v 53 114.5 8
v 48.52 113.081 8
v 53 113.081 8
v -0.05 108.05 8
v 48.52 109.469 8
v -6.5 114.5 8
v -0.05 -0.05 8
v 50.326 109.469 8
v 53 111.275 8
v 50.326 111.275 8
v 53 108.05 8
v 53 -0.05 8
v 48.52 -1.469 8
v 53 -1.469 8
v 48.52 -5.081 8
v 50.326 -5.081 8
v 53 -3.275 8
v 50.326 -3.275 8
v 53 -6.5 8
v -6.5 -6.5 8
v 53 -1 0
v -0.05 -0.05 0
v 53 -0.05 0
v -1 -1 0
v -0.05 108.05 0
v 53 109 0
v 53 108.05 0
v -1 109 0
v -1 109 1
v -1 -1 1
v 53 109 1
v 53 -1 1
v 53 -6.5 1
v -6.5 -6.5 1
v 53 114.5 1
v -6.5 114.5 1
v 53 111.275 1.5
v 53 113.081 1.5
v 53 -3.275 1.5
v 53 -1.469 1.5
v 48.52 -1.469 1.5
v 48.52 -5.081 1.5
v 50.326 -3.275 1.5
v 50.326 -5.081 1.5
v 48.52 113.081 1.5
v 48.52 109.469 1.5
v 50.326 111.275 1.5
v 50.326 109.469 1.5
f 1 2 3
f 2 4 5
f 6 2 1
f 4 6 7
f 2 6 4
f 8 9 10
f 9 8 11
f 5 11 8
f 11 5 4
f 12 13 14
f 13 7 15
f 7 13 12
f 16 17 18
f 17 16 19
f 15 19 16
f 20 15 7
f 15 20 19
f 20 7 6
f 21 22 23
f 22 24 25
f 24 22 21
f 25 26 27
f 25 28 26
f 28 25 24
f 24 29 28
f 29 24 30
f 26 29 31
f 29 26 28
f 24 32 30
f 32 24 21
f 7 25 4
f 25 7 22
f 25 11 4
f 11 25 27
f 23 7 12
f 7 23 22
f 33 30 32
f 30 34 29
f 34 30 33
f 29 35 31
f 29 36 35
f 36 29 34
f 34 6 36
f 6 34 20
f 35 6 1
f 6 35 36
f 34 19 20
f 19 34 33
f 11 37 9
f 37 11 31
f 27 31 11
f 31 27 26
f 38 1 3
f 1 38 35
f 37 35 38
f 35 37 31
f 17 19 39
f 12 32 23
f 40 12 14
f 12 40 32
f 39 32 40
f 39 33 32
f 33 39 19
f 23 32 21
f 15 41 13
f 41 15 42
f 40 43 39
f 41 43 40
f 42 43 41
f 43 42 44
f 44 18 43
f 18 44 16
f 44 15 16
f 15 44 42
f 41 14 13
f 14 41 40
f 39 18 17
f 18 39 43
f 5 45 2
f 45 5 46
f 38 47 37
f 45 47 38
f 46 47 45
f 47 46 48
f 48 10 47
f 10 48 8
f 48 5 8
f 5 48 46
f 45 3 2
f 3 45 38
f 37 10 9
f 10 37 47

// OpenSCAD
// Generated by SolidPython 1.0.4 on 2021-01-19 17:41:34


difference() {
	difference() {
		difference() {
			union() {
				difference() {
					translate(v = [-1.0000000000, -1.0000000000, 0]) {
						cube(size = [74.0000000000, 110.0000000000, 8]);
					}
					translate(v = [-0.0500000000, -0.0500000000, 0]) {
						cube(size = [72.1000000000, 108.1000000000, 8]);
					}
				}
				translate(v = [0, 0, 1]) {
					difference() {
						translate(v = [-6.5000000000, -6.5000000000, 0]) {
							cube(size = [85.0000000000, 121.0000000000, 7]);
						}
						translate(v = [-1.0000000000, -1.0000000000, 0]) {
							cube(size = [74.0000000000, 110.0000000000, 7]);
						}
					}
				}
			}
			translate(v = [53.0000000000, -6.5000000000, 0]) {
				cube(size = [25.5000000000, 121.0000000000, 8]);
			}
		}
		translate(v = [49.0000000000, -5.0810000000, 0]) {
			translate(v = [-0.4800000000, 0, 1.5000000000]) {
				scale(v = [1.1200000000, 1.1200000000, 1]) {
					translate(v = [4, 3.2250000000, 0]) {
						rotate(a = -180) {
							union() {
								translate(v = [2.3875000000, 0, 0]) {
									cube(size = [1.6125000000, 3.2250000000, 6.5000000000]);
								}
								cube(size = [4, 1.6125000000, 6.5000000000]);
							}
						}
					}
				}
			}
		}
	}
	translate(v = [49.0000000000, 109.4690000000, 0]) {
		translate(v = [-0.4800000000, 0, 1.5000000000]) {
			scale(v = [1.1200000000, 1.1200000000, 1]) {
				translate(v = [4, 3.2250000000, 0]) {
					rotate(a = -180) {
						union() {
							translate(v = [2.3875000000, 0, 0]) {
								cube(size = [1.6125000000, 3.2250000000, 6.5000000000]);
							}
							cube(size = [4, 1.6125000000, 6.5000000000]);
						}
					}
				}
			}
		}
	}
}
